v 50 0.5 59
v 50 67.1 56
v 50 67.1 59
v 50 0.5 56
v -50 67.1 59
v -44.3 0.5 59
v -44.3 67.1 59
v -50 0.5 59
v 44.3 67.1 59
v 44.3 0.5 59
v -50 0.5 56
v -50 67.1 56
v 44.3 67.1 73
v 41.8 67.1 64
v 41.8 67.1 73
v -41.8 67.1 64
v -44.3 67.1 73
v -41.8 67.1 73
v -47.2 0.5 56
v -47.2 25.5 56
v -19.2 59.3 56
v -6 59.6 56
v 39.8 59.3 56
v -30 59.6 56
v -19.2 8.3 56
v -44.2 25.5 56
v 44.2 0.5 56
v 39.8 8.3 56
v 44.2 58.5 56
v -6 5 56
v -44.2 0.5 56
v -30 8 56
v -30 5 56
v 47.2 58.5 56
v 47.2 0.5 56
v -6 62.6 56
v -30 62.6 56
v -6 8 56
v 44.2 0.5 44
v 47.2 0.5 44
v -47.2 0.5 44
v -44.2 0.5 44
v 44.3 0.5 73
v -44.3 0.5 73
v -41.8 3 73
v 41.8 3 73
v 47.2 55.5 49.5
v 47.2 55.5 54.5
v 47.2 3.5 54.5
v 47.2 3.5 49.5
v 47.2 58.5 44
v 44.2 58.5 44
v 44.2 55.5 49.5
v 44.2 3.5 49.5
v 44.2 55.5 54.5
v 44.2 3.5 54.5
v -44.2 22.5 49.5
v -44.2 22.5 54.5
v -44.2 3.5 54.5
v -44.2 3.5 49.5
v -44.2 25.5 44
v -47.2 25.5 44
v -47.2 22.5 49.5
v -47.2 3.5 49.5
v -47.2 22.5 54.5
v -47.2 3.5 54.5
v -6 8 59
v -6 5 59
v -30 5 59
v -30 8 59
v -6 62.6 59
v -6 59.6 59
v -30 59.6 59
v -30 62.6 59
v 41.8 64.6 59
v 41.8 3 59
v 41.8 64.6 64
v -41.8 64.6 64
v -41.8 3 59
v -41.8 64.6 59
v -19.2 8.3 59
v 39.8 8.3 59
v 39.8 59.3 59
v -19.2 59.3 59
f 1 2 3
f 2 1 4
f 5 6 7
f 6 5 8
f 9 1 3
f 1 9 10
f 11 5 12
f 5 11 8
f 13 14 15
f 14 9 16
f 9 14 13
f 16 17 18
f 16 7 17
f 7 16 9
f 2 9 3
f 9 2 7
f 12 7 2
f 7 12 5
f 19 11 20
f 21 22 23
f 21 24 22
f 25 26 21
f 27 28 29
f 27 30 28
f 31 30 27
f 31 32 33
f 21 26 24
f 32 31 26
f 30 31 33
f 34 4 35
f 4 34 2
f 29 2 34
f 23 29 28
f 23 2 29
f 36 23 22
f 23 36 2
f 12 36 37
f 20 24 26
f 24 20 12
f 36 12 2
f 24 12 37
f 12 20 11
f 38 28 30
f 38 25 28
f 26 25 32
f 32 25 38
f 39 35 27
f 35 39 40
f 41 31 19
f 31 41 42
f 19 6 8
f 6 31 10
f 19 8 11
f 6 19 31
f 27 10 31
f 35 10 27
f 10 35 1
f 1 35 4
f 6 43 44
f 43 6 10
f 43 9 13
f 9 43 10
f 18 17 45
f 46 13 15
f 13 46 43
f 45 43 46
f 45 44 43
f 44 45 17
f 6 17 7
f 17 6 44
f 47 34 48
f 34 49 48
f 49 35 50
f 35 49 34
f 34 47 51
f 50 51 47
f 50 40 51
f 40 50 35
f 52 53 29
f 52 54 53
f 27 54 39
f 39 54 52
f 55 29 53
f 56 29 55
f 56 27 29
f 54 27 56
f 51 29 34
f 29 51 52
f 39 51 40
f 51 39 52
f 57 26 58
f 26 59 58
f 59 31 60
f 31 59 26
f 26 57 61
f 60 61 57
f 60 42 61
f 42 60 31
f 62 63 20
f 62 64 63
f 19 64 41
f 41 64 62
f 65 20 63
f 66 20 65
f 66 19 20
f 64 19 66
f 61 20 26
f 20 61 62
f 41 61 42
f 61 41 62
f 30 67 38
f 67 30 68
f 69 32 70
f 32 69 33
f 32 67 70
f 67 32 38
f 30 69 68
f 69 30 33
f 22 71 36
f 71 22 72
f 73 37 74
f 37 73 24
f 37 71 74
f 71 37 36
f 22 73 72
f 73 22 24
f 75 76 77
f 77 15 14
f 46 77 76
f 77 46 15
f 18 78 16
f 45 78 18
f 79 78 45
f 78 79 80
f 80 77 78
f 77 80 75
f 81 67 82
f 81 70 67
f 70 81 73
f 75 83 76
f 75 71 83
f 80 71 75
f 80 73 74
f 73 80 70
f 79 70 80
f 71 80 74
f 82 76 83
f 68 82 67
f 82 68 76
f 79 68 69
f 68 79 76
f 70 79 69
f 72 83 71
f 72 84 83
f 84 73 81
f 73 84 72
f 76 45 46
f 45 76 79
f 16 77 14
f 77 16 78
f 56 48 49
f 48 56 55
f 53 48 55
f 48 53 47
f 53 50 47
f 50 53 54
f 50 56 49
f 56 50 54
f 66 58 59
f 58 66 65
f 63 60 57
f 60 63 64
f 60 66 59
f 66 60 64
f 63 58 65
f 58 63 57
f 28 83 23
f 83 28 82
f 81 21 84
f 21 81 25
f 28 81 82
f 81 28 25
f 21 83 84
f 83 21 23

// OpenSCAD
// Battery tray: Grover's 3x18650 pack (holder + HW-288 BMS) behind the
// acrylic deck, ON TOP of the two track rails (Enoch's design, 2026-10-31).
// It replaces battery cradle v3 on the posts, so the posts now carry only the
// fixed electronics top plate.
//
// Shape (v2 - v1 recessed the pocket between the rails, and Enoch: "it
// definitely won't be able to sit that low - the motor will interfere"):
// a floor plate that rests on both rail tops (2.5 mm onto each, clear of the
// treads), with cradle v3's holder pocket ROTATED 90 deg (holder crosswise) on
// top of it. Only the BMS (through its floor window, ~6 mm) and the tabs reach
// below the rail tops. The BMS sits at the LEFT end (the rear motor is on the
// right). Vertical tabs (12 mm deep) hang down the rails' inside faces, each
// with a horizontal slot at the rails' top hole row (4 mm below the top edge,
// Enoch) - an M4 goes through any rail hole the tab covers, whatever the pitch. The right tab stops short of the rear motor plate (it covers the
// last ~31 mm of the rail). A low rear lip: lift the pack a little and slide it
// out the back. Two slots take a velcro strap over the pack.
//
// Frame: y REARWARD from the acrylic's rear edge, z up from the bench - so the
// geometry below is built with +x = Grover's LEFT (a right-handed frame with y
// pointing back). The 10-31 print (cfde5f9b89) came out mirrored because the
// labels assumed +x = right; the final mirror() below fixes that: in the output
// +x IS Grover's right, the short tab is on the right (clear of the motor
// plate) and the BMS window on the left.
// Measured (Enoch, 10-31): rail tops 56 mm; rails 95 mm apart inside; 60 mm
// from the acrylic's rear edge to the rail ends; motor plate covers the rear
// ~31 mm of the right rail. Holder + BMS 61 x 79 x ~23 (10-19; body 17 / BMS 6
// are the cradle's assumed split).
//
// Render: openscad -o battery-tray.stl battery-tray.scad
// Print:  floor down, no supports, no brim.

// holder (from battery-cradle.scad)
holder_w = 61;  holder_l = 79;  body_h = 17;  bms_h = 6;
bms_w = 45;     bms_l = 56;     clear_w = 0.6; clear_l = 4.6;

// chassis
rail_top    = 56;
rail_gap    = 95;      // inside faces
rail_len    = 60;      // acrylic rear edge -> rail ends
plate_cover = 31;      // right motor plate, from the rail end forward
lip         = 2.5;     // floor overhang onto each rail top

// tray
floor_t  = 3;
wall_t   = 2.5;
wall_h   = 14;         // pocket walls above the floor (holder body ~17)
rear_lip = 5;
tab_t    = 3;
tab_gap  = 0.3;        // tab-to-rail clearance
tab_drop = 12;         // tabs reach this far below the rail tops: the top row of holes only (Enoch)
y0       = 0.5;        // front face, just clear of the acrylic
hole_down = 4;         // rails' top hole row: centre 4 mm below the top edge (Enoch)
slot_h   = 5;          // tab slot height (M4 + 0.5)

inner_x = holder_l + clear_l;     // 83.6 across
inner_y = holder_w + clear_w;     // 61.6 front-back
px0 = -inner_x / 2;  px1 = inner_x / 2;
py0 = y0 + wall_t;   py1 = py0 + inner_y;
oy1 = py1 + wall_t;
rail_x = rail_gap / 2;
fz = rail_top + floor_t;          // floor top

$fn = 32;

module tray() {
  difference() {
    union() {
      // floor plate over both rails
      translate([-rail_x - lip, y0, rail_top]) cube([rail_gap + 2 * lip, oy1 - y0, floor_t]);
      // pocket walls
      translate([px0 - wall_t, y0, fz]) cube([inner_x + 2 * wall_t, oy1 - y0, wall_h]);
      // tabs down the rails' inside faces
      translate([-rail_x + tab_gap, y0, rail_top - tab_drop]) cube([tab_t, rail_len - 2, tab_drop + 0.01]);
      translate([rail_x - tab_gap - tab_t, y0, rail_top - tab_drop]) cube([tab_t, rail_len - plate_cover - 4, tab_drop + 0.01]);
    }
    // the pocket, open top; rear wall cut down to a low lip
    translate([px0, py0, fz]) cube([inner_x, inner_y, 50]);
    translate([px0, py1 - 1, fz + rear_lip]) cube([inner_x, wall_t + 2, 50]);
    // horizontal slots along each tab at the rails' top hole row: an M4 goes
    // through any rail hole the tab covers, whatever the pitch
    translate([-rail_x - 1, y0 + 3, rail_top - hole_down - slot_h / 2]) cube([tab_t + 2, rail_len - 2 - 6, slot_h]);
    translate([rail_x - tab_gap - tab_t - 1, y0 + 3, rail_top - hole_down - slot_h / 2]) cube([tab_t + 2, rail_len - plate_cover - 4 - 6, slot_h]);
    // BMS window, left end of the floor
    translate([px0 + 2, py0 + (inner_y - bms_w - 6) / 2, rail_top - 1]) cube([bms_l + 3, bms_w + 6, floor_t + 2]);
    // velcro strap slots (right half of the floor, front and rear)
    for (y = [py0 + 2, py1 - 5])
      translate([6, y, rail_top - 1]) cube([24, 3, floor_t + 2]);
  }
}

module ghosts() {
  %translate([px0 + clear_l / 2, py0 + clear_w / 2, fz]) cube([holder_l, holder_w, body_h]);
  %for (s = [-1, 1]) translate([s * (rail_x + 4), rail_len / 2, rail_top - 12]) cube([8, rail_len, 24], center = true);
}

mirror([1, 0, 0]) { tray(); ghosts(); }   // see the frame note: the output has +x = Grover's right
